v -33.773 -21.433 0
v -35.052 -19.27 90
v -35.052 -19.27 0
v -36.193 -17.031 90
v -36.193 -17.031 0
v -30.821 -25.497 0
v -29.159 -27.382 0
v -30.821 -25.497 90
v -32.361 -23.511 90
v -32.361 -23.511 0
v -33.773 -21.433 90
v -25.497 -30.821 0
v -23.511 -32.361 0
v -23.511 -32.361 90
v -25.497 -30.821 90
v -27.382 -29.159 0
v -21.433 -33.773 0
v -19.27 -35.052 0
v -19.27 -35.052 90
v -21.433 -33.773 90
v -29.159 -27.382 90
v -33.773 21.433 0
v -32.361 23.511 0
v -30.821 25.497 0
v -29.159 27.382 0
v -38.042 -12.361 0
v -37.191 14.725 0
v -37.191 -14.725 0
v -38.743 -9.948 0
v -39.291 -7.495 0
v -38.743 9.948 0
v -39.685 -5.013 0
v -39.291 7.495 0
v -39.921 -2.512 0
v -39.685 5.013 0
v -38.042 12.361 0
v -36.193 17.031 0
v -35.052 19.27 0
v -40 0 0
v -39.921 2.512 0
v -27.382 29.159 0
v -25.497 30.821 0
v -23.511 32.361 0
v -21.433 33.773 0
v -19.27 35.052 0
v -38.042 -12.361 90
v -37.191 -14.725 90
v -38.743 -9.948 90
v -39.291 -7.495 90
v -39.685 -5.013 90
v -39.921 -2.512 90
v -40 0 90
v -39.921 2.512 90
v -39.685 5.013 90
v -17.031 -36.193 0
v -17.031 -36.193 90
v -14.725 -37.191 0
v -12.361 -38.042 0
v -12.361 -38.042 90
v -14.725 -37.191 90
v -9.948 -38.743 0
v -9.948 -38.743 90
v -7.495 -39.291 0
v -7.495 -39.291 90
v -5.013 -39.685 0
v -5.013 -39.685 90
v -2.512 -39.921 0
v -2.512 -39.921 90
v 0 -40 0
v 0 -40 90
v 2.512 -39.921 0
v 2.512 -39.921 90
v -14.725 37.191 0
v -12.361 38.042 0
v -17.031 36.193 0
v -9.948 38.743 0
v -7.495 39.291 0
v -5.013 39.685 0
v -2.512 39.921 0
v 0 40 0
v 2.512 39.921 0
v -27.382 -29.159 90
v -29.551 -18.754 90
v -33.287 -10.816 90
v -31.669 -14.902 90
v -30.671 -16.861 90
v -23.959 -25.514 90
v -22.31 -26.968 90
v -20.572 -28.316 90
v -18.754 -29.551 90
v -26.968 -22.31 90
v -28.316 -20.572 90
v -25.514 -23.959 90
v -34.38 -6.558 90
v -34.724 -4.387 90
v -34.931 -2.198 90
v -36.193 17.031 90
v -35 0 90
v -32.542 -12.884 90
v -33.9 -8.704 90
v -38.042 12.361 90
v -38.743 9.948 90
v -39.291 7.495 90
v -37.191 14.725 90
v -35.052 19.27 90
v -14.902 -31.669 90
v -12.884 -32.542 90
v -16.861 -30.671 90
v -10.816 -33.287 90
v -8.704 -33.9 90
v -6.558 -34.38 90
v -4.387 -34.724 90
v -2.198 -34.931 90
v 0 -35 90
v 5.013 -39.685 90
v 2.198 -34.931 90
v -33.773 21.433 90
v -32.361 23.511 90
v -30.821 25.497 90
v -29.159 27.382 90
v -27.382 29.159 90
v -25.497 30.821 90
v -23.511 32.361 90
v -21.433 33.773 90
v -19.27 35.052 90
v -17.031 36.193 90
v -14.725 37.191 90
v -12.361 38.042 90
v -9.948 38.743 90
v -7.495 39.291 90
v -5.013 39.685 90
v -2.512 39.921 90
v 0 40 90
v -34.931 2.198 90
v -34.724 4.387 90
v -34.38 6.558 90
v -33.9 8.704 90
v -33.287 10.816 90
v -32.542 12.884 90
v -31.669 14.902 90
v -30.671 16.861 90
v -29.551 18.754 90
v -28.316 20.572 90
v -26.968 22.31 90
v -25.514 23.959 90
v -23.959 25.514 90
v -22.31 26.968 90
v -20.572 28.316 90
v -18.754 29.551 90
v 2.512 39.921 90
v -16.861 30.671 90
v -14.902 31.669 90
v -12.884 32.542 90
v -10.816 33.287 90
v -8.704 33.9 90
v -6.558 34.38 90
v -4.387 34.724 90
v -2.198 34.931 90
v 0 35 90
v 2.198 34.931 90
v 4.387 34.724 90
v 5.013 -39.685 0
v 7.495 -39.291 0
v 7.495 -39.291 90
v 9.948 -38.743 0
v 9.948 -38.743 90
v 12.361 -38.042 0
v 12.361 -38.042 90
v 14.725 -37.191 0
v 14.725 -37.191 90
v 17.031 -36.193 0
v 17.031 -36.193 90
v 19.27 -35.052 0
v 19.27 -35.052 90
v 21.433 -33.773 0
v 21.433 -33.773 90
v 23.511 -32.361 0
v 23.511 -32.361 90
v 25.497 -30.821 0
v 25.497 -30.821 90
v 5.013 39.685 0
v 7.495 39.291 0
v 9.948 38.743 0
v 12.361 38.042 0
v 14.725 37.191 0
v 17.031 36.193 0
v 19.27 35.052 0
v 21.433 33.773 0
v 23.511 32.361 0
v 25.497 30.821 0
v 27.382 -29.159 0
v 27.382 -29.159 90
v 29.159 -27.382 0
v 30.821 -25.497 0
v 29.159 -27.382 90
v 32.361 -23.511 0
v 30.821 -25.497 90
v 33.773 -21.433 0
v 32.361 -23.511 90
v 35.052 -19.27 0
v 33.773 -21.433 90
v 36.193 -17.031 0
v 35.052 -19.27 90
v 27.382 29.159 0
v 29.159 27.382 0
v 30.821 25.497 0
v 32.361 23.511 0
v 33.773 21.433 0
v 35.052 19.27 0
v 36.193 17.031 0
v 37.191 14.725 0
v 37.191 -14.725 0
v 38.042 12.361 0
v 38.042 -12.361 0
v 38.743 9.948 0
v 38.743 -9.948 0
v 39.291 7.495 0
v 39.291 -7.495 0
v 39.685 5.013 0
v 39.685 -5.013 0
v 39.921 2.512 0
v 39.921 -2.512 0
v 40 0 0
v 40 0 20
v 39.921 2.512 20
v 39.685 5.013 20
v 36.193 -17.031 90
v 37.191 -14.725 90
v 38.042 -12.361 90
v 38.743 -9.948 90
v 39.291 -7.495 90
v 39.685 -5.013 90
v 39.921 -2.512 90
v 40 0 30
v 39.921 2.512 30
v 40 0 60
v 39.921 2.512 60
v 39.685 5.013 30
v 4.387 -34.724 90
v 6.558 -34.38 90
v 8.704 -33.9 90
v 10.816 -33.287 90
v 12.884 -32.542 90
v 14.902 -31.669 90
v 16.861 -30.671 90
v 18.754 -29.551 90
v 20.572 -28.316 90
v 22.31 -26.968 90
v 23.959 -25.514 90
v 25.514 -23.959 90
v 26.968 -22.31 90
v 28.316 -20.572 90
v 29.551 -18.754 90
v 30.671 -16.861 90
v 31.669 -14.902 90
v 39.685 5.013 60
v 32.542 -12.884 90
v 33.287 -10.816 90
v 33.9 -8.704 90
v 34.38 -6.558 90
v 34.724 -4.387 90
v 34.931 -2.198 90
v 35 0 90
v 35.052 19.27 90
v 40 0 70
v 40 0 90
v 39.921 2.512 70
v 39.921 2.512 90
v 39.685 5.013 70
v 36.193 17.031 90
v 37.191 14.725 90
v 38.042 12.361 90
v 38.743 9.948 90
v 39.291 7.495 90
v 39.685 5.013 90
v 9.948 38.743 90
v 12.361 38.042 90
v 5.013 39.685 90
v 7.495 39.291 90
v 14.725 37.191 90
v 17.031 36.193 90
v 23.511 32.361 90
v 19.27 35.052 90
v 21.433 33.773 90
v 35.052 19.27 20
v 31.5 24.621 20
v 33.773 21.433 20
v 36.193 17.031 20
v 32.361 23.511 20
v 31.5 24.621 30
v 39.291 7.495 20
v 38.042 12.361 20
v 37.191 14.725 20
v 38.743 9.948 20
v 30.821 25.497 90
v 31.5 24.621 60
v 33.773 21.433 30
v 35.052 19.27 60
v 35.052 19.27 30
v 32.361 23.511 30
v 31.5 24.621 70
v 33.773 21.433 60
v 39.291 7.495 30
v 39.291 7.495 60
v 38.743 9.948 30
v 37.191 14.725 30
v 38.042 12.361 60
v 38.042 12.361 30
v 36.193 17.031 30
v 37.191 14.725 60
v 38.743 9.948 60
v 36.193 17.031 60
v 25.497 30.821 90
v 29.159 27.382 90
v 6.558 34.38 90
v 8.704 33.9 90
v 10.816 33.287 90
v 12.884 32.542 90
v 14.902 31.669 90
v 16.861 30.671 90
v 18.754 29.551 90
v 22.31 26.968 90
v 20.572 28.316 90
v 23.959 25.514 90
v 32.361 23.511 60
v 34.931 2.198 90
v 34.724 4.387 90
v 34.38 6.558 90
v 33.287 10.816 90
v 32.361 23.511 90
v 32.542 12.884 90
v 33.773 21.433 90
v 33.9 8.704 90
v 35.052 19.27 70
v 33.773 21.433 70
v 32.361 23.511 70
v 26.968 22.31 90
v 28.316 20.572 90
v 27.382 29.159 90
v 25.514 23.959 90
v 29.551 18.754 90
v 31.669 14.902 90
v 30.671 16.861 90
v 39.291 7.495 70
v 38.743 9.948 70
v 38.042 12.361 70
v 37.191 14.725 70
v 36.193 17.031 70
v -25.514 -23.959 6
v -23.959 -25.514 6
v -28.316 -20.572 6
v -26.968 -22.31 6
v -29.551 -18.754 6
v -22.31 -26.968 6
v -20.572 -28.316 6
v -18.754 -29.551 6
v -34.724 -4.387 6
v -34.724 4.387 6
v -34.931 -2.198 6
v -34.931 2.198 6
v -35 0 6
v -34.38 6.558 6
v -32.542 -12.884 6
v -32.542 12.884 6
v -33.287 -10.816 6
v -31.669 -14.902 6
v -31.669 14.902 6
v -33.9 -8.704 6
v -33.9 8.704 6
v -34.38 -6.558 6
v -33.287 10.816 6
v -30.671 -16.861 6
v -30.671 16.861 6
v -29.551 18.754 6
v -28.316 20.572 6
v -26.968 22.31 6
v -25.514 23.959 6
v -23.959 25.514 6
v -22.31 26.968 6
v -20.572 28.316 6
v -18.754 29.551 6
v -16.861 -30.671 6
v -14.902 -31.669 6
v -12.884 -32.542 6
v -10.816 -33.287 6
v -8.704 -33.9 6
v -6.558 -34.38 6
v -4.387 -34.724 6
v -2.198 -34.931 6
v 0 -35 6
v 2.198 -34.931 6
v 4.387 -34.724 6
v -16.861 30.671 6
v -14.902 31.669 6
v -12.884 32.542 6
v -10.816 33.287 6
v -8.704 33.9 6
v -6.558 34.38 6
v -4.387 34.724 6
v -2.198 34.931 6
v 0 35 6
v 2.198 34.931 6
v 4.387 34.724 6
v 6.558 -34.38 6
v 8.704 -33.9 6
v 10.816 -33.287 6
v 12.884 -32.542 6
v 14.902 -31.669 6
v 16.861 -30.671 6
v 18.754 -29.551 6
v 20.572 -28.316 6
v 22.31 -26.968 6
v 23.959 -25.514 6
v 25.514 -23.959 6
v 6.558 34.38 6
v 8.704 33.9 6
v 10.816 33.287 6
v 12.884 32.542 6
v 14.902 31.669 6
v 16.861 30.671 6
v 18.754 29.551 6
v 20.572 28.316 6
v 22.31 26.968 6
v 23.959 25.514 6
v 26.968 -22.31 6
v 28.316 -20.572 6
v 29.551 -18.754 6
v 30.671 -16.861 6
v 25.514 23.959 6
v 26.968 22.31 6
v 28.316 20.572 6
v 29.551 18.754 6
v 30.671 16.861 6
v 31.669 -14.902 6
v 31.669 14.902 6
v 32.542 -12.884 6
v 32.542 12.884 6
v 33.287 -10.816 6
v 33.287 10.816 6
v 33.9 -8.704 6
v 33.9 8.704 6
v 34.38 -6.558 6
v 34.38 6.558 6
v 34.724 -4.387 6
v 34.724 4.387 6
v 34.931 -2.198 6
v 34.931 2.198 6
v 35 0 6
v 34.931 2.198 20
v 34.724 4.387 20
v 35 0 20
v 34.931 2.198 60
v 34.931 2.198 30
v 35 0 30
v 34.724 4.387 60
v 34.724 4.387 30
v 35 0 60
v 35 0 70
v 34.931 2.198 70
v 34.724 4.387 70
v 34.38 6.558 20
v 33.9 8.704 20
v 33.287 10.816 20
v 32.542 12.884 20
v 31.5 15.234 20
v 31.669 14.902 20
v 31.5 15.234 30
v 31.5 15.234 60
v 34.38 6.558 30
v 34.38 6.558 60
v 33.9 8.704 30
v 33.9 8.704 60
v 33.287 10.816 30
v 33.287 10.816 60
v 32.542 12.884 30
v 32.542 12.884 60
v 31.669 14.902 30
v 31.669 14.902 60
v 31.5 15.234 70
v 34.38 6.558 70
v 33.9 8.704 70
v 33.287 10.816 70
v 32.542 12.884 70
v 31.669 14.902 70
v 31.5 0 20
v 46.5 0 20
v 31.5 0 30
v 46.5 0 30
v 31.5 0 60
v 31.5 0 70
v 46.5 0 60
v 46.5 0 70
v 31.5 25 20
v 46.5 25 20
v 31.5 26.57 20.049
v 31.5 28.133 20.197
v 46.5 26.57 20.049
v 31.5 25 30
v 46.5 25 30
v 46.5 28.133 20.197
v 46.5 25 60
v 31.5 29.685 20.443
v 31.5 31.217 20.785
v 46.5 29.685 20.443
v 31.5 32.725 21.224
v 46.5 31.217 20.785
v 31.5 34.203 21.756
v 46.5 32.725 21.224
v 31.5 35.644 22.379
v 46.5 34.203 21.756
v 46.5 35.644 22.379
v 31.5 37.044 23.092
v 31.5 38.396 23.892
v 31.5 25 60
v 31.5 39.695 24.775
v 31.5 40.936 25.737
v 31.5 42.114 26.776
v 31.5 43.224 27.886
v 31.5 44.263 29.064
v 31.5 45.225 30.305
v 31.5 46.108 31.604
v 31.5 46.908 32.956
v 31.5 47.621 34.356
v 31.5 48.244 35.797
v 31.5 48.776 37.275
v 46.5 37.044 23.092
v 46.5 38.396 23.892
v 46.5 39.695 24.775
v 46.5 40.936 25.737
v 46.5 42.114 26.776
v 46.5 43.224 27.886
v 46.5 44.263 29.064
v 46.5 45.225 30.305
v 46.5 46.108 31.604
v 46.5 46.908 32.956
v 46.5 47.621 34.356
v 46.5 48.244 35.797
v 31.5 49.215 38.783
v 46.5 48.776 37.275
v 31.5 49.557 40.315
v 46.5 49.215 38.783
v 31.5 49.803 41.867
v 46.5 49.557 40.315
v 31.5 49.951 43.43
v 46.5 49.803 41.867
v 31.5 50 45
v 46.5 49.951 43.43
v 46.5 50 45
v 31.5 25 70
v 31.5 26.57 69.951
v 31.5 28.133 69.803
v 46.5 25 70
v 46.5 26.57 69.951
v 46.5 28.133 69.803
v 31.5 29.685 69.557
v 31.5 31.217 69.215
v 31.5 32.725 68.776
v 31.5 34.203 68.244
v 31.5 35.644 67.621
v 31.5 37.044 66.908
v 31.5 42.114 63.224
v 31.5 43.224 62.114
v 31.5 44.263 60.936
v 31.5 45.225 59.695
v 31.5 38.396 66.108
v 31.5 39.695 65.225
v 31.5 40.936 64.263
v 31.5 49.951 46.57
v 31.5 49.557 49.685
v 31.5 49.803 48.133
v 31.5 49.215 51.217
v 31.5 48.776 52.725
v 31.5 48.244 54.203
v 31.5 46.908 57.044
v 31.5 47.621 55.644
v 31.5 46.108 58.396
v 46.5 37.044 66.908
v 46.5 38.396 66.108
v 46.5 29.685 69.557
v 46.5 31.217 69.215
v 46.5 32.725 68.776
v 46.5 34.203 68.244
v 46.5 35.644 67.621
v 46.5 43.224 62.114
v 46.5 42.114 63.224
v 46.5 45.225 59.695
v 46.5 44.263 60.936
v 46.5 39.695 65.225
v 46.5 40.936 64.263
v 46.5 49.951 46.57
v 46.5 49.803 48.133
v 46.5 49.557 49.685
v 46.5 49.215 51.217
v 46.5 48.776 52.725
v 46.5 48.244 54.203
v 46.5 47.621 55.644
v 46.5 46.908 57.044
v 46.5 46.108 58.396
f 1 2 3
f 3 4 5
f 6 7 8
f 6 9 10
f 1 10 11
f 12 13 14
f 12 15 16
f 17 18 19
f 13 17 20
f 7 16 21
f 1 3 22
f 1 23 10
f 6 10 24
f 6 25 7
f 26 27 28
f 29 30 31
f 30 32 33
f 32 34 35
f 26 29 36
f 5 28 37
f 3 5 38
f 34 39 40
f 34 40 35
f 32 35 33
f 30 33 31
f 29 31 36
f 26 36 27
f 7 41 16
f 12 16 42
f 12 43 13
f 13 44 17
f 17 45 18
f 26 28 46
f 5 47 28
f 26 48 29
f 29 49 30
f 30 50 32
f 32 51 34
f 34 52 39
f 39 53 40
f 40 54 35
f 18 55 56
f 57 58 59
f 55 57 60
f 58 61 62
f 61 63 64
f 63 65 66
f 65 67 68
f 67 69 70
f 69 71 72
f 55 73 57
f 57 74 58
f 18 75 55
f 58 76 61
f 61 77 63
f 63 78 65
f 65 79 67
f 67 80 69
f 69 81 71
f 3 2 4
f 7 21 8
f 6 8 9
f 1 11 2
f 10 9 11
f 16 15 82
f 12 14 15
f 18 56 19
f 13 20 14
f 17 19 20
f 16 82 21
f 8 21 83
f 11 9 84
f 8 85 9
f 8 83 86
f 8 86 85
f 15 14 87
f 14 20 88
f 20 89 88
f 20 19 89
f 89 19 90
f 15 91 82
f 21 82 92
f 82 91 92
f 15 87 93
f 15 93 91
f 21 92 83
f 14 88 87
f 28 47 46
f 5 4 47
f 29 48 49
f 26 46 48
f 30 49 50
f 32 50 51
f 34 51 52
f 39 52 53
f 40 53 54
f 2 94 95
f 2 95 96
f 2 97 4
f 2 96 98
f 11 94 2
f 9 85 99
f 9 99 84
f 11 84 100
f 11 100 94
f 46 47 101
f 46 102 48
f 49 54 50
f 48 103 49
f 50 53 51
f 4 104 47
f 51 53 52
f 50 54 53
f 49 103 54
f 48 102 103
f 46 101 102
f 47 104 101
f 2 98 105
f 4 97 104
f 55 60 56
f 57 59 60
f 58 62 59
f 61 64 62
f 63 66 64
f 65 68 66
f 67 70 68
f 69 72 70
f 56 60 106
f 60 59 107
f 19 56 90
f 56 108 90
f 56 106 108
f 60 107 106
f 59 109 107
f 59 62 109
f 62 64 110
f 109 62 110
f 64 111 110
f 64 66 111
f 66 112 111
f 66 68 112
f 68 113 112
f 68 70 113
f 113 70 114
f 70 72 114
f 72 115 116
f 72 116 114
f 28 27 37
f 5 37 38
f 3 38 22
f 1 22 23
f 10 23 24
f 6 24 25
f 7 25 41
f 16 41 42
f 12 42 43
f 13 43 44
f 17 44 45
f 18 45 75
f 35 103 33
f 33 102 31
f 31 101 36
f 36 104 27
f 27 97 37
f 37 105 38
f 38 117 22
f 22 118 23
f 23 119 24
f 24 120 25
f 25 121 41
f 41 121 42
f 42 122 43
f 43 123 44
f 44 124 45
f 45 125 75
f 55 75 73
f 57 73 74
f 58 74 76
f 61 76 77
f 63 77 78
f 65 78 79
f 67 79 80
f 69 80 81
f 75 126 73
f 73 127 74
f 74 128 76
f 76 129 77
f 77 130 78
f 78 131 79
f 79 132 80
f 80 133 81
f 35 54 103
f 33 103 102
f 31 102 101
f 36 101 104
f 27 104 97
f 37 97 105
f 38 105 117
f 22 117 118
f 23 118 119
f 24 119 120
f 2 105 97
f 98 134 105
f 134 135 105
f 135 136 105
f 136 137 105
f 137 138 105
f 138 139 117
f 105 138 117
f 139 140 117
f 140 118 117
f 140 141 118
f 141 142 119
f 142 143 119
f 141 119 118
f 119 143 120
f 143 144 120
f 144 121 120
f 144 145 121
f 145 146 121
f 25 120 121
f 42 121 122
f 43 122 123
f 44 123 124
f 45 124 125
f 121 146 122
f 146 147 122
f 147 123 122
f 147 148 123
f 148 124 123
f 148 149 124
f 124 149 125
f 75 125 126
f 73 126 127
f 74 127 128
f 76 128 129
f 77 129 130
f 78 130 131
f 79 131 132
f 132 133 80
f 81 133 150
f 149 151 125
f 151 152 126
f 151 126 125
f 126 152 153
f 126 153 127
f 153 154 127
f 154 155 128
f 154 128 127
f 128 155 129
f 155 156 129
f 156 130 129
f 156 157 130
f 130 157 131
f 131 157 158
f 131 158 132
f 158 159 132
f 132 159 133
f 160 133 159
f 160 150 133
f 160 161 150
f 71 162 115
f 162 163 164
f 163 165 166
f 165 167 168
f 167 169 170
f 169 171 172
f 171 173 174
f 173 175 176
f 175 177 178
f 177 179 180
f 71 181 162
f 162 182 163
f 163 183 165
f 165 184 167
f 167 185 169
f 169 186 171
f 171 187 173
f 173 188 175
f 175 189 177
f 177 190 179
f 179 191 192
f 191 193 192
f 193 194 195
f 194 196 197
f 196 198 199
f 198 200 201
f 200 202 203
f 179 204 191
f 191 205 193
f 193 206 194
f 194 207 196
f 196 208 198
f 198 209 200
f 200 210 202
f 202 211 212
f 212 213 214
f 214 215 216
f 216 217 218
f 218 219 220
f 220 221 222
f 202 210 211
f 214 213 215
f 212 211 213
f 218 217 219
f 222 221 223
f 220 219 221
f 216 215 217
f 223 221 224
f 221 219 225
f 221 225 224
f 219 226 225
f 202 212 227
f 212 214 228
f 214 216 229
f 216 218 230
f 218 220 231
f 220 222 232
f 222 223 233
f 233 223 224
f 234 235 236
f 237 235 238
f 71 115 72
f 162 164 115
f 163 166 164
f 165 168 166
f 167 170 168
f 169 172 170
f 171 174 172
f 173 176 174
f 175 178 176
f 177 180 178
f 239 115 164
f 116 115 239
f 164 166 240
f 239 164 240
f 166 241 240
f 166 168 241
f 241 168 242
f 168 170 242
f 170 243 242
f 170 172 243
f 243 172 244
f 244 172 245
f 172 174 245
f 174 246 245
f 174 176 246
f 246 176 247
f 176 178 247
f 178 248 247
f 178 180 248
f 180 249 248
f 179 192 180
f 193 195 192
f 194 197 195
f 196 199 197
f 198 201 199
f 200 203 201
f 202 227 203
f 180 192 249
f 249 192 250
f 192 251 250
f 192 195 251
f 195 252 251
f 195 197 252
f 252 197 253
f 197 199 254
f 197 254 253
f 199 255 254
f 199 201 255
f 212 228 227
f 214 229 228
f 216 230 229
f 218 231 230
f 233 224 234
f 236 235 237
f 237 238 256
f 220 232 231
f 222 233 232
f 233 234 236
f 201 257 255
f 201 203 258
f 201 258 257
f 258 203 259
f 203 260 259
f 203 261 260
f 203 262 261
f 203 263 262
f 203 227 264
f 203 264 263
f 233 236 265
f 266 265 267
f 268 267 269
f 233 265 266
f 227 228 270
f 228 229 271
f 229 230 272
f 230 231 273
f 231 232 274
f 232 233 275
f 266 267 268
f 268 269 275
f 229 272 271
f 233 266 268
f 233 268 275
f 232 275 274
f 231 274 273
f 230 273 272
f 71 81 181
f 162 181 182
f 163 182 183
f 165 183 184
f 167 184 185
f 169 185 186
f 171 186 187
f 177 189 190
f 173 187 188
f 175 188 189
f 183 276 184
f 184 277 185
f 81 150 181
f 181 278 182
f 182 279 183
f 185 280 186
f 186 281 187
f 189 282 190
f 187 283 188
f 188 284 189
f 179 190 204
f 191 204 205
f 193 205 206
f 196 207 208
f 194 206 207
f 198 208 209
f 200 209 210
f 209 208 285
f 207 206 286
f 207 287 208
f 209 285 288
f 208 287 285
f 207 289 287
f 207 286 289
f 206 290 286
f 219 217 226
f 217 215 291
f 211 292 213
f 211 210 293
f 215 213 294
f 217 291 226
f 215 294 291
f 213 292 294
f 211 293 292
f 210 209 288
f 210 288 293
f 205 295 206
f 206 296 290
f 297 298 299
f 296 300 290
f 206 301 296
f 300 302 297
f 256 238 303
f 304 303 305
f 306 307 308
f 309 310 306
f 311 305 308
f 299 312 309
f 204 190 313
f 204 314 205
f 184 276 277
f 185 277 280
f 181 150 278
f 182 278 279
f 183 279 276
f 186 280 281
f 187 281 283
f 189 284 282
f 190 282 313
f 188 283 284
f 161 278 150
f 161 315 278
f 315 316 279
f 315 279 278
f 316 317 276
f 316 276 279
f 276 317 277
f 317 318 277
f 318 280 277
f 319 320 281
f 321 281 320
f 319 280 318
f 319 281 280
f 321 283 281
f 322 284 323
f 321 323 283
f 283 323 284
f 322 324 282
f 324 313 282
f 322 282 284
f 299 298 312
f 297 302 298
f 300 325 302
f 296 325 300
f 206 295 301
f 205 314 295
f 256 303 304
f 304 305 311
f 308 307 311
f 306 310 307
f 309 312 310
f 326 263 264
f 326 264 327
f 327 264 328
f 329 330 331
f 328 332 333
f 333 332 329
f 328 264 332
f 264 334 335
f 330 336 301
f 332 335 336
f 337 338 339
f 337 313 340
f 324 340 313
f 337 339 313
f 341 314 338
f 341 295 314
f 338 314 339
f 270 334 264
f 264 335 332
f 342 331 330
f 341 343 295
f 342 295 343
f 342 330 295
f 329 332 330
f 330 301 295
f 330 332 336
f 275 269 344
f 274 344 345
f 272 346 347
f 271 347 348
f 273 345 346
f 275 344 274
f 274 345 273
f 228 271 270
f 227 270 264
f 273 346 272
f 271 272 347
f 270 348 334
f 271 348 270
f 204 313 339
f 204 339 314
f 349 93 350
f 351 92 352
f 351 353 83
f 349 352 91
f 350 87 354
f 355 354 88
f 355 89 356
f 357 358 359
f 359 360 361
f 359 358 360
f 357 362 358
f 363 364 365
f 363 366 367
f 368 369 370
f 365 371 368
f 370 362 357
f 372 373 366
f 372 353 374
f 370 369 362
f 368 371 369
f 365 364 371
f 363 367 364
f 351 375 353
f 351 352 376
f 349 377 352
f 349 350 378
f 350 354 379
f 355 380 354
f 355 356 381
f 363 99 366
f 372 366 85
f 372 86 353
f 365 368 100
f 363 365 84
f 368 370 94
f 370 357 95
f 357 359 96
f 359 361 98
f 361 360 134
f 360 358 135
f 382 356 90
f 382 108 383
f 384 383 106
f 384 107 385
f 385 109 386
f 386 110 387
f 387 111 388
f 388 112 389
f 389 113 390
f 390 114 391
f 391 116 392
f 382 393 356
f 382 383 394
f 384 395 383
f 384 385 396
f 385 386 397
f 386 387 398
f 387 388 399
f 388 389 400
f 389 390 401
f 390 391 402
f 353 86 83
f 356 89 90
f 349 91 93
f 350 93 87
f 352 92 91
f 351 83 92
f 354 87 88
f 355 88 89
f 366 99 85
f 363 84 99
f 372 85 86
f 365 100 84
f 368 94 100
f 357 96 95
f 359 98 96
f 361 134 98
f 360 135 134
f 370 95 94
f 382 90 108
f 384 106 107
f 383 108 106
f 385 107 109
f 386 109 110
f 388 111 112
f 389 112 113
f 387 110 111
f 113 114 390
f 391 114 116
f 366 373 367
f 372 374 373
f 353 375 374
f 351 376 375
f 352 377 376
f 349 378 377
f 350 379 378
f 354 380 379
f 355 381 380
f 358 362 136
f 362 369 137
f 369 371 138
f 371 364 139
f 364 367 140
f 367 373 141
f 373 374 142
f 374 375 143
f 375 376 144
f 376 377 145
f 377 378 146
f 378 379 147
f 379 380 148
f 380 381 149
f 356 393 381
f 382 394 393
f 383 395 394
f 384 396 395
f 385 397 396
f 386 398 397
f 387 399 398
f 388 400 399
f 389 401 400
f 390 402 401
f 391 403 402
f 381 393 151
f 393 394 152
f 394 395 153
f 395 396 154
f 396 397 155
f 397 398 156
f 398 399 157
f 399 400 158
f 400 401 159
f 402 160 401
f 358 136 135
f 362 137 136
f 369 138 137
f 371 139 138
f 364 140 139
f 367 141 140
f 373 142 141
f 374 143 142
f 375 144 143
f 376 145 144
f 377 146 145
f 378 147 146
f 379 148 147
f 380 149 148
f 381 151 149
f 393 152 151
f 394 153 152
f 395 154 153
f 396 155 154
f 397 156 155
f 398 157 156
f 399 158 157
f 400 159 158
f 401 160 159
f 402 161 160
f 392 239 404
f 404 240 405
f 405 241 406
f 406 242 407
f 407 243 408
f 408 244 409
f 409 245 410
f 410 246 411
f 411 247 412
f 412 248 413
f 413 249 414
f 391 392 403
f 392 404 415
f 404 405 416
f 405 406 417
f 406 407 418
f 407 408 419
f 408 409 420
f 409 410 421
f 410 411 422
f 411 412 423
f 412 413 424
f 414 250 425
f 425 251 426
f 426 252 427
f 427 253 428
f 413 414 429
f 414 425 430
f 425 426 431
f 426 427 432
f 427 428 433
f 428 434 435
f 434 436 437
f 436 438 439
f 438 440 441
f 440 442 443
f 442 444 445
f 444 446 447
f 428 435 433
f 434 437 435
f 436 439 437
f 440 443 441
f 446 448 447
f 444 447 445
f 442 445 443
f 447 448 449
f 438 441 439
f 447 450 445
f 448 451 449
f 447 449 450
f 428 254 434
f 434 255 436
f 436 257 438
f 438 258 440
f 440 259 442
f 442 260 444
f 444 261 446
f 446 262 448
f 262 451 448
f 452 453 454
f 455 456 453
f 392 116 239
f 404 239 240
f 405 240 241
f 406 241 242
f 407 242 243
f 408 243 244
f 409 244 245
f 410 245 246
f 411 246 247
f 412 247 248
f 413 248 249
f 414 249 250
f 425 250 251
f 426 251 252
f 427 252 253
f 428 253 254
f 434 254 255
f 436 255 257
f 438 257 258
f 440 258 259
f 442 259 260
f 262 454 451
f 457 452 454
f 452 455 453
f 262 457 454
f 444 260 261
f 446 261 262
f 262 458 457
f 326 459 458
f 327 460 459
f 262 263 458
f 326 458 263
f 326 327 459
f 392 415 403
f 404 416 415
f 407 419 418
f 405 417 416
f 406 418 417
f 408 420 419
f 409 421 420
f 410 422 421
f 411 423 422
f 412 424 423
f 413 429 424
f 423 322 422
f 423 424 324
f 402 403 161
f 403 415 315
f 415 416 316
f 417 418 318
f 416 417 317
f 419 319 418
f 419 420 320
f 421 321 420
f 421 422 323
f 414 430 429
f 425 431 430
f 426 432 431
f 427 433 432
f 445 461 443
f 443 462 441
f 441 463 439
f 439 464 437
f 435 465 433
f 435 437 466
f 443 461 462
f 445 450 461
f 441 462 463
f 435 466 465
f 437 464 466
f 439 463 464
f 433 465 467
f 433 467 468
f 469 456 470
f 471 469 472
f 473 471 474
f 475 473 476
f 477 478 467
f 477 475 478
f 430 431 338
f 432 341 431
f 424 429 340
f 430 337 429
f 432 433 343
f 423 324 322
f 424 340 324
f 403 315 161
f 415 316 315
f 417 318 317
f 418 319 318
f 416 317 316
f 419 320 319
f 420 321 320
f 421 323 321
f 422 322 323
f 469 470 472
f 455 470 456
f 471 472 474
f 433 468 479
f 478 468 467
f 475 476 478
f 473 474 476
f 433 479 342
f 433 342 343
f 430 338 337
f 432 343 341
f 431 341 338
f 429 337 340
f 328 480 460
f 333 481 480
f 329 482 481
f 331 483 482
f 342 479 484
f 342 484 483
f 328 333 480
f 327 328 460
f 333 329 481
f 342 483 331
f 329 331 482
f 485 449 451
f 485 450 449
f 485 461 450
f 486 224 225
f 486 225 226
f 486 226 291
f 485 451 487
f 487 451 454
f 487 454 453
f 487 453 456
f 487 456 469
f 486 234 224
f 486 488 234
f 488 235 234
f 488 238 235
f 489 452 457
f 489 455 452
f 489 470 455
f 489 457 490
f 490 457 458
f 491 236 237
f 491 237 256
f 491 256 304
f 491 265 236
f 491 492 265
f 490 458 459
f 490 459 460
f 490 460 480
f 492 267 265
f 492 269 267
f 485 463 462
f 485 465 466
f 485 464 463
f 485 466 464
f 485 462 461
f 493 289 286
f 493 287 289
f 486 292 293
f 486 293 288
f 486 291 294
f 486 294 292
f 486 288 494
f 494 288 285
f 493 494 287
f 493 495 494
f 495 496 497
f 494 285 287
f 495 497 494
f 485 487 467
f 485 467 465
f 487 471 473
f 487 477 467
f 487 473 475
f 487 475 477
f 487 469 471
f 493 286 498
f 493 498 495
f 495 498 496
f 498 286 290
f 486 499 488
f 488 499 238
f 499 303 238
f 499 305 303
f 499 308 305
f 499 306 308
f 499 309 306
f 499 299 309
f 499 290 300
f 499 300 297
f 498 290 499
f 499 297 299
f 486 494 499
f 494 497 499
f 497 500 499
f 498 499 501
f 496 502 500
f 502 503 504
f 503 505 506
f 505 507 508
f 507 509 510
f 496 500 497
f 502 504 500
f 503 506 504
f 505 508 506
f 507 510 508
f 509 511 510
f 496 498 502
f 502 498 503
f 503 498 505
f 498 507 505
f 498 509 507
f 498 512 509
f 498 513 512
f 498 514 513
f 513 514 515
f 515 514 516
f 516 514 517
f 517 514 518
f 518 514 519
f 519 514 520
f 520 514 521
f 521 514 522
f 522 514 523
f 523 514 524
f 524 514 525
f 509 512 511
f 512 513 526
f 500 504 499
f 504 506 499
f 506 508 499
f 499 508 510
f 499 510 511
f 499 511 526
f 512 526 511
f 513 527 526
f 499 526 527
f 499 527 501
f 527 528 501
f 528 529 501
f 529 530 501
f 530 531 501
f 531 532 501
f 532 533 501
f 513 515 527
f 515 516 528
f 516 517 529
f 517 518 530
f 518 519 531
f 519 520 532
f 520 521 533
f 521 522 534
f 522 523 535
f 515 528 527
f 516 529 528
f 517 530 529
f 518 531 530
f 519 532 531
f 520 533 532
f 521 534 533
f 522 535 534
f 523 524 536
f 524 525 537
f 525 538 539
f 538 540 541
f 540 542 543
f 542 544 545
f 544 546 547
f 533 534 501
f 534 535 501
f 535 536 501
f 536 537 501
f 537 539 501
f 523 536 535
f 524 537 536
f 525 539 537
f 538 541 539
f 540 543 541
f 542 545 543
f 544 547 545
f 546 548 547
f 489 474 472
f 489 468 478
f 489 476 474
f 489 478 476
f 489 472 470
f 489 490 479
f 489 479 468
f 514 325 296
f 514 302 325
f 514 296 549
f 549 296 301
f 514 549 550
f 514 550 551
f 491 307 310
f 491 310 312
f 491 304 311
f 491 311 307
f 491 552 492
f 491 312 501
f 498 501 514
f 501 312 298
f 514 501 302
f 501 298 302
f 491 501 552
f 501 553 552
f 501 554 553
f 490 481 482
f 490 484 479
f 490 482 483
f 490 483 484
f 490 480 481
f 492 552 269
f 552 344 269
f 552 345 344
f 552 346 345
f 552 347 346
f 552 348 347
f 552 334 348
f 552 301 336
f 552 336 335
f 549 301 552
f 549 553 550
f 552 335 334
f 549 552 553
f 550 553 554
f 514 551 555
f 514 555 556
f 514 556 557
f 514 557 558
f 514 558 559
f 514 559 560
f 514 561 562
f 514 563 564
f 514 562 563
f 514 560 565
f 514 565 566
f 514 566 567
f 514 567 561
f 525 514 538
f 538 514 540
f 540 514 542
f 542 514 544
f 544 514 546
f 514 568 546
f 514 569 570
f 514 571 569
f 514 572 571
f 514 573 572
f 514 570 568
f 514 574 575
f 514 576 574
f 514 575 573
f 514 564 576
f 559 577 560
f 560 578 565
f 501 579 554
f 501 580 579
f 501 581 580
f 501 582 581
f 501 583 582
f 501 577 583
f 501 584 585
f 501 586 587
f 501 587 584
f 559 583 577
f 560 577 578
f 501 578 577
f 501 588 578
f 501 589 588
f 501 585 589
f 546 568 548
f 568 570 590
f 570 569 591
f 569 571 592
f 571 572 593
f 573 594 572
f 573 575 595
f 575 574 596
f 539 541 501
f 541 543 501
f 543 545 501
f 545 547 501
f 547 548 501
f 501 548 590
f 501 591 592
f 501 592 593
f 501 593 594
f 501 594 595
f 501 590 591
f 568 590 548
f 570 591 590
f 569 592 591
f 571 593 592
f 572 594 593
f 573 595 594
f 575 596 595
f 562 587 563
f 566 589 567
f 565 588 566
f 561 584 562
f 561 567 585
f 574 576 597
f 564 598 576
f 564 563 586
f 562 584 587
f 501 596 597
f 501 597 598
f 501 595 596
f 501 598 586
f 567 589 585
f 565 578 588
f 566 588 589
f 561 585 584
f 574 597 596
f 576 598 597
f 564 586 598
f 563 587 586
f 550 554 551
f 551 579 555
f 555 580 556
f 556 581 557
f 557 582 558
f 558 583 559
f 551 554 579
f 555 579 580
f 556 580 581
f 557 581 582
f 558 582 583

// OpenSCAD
$fn = 100;

// マグカップ本体と取手の結合
union() {
    // --- 本体 (Body) ---
    difference() {
        // 外径 80mm, 高さ 90mm の円柱
        cylinder(h=90, d=80);
        
        // 内側の中空部分 (内径 70mm, 底の厚み 6mm)
        translate([0, 0, 6])
            cylinder(h=85, d=70);
    }

    // --- 取手 (Handle) ---
    // 本体外周(X=40)から+X方向に配置、高さ中央(Z=45)に合わせる
    translate([40 - 1, 0, 45]) // 確実に接続するため1mm本体にめり込ませる
    rotate([90, 0, 90])         // X軸方向に向くよう回転
    linear_extrude(height=15, center=true) // 取手自体の厚み(幅)は15mm
    difference() {
        // 取手の外形 (D字の曲線部分)
        // 底辺から25mmの位置を円の中心とし、外側を半円にする
        hull() {
            translate([0, -25]) square([1, 50]); // 本体側の直線
            translate([25, 0]) circle(d=50);     // 外側の半円
        }
        
        // 取手の内側の空間 (高さ 30mm × 幅 25mm)
        translate([0, -15]) square([25, 30]);
    }
}
